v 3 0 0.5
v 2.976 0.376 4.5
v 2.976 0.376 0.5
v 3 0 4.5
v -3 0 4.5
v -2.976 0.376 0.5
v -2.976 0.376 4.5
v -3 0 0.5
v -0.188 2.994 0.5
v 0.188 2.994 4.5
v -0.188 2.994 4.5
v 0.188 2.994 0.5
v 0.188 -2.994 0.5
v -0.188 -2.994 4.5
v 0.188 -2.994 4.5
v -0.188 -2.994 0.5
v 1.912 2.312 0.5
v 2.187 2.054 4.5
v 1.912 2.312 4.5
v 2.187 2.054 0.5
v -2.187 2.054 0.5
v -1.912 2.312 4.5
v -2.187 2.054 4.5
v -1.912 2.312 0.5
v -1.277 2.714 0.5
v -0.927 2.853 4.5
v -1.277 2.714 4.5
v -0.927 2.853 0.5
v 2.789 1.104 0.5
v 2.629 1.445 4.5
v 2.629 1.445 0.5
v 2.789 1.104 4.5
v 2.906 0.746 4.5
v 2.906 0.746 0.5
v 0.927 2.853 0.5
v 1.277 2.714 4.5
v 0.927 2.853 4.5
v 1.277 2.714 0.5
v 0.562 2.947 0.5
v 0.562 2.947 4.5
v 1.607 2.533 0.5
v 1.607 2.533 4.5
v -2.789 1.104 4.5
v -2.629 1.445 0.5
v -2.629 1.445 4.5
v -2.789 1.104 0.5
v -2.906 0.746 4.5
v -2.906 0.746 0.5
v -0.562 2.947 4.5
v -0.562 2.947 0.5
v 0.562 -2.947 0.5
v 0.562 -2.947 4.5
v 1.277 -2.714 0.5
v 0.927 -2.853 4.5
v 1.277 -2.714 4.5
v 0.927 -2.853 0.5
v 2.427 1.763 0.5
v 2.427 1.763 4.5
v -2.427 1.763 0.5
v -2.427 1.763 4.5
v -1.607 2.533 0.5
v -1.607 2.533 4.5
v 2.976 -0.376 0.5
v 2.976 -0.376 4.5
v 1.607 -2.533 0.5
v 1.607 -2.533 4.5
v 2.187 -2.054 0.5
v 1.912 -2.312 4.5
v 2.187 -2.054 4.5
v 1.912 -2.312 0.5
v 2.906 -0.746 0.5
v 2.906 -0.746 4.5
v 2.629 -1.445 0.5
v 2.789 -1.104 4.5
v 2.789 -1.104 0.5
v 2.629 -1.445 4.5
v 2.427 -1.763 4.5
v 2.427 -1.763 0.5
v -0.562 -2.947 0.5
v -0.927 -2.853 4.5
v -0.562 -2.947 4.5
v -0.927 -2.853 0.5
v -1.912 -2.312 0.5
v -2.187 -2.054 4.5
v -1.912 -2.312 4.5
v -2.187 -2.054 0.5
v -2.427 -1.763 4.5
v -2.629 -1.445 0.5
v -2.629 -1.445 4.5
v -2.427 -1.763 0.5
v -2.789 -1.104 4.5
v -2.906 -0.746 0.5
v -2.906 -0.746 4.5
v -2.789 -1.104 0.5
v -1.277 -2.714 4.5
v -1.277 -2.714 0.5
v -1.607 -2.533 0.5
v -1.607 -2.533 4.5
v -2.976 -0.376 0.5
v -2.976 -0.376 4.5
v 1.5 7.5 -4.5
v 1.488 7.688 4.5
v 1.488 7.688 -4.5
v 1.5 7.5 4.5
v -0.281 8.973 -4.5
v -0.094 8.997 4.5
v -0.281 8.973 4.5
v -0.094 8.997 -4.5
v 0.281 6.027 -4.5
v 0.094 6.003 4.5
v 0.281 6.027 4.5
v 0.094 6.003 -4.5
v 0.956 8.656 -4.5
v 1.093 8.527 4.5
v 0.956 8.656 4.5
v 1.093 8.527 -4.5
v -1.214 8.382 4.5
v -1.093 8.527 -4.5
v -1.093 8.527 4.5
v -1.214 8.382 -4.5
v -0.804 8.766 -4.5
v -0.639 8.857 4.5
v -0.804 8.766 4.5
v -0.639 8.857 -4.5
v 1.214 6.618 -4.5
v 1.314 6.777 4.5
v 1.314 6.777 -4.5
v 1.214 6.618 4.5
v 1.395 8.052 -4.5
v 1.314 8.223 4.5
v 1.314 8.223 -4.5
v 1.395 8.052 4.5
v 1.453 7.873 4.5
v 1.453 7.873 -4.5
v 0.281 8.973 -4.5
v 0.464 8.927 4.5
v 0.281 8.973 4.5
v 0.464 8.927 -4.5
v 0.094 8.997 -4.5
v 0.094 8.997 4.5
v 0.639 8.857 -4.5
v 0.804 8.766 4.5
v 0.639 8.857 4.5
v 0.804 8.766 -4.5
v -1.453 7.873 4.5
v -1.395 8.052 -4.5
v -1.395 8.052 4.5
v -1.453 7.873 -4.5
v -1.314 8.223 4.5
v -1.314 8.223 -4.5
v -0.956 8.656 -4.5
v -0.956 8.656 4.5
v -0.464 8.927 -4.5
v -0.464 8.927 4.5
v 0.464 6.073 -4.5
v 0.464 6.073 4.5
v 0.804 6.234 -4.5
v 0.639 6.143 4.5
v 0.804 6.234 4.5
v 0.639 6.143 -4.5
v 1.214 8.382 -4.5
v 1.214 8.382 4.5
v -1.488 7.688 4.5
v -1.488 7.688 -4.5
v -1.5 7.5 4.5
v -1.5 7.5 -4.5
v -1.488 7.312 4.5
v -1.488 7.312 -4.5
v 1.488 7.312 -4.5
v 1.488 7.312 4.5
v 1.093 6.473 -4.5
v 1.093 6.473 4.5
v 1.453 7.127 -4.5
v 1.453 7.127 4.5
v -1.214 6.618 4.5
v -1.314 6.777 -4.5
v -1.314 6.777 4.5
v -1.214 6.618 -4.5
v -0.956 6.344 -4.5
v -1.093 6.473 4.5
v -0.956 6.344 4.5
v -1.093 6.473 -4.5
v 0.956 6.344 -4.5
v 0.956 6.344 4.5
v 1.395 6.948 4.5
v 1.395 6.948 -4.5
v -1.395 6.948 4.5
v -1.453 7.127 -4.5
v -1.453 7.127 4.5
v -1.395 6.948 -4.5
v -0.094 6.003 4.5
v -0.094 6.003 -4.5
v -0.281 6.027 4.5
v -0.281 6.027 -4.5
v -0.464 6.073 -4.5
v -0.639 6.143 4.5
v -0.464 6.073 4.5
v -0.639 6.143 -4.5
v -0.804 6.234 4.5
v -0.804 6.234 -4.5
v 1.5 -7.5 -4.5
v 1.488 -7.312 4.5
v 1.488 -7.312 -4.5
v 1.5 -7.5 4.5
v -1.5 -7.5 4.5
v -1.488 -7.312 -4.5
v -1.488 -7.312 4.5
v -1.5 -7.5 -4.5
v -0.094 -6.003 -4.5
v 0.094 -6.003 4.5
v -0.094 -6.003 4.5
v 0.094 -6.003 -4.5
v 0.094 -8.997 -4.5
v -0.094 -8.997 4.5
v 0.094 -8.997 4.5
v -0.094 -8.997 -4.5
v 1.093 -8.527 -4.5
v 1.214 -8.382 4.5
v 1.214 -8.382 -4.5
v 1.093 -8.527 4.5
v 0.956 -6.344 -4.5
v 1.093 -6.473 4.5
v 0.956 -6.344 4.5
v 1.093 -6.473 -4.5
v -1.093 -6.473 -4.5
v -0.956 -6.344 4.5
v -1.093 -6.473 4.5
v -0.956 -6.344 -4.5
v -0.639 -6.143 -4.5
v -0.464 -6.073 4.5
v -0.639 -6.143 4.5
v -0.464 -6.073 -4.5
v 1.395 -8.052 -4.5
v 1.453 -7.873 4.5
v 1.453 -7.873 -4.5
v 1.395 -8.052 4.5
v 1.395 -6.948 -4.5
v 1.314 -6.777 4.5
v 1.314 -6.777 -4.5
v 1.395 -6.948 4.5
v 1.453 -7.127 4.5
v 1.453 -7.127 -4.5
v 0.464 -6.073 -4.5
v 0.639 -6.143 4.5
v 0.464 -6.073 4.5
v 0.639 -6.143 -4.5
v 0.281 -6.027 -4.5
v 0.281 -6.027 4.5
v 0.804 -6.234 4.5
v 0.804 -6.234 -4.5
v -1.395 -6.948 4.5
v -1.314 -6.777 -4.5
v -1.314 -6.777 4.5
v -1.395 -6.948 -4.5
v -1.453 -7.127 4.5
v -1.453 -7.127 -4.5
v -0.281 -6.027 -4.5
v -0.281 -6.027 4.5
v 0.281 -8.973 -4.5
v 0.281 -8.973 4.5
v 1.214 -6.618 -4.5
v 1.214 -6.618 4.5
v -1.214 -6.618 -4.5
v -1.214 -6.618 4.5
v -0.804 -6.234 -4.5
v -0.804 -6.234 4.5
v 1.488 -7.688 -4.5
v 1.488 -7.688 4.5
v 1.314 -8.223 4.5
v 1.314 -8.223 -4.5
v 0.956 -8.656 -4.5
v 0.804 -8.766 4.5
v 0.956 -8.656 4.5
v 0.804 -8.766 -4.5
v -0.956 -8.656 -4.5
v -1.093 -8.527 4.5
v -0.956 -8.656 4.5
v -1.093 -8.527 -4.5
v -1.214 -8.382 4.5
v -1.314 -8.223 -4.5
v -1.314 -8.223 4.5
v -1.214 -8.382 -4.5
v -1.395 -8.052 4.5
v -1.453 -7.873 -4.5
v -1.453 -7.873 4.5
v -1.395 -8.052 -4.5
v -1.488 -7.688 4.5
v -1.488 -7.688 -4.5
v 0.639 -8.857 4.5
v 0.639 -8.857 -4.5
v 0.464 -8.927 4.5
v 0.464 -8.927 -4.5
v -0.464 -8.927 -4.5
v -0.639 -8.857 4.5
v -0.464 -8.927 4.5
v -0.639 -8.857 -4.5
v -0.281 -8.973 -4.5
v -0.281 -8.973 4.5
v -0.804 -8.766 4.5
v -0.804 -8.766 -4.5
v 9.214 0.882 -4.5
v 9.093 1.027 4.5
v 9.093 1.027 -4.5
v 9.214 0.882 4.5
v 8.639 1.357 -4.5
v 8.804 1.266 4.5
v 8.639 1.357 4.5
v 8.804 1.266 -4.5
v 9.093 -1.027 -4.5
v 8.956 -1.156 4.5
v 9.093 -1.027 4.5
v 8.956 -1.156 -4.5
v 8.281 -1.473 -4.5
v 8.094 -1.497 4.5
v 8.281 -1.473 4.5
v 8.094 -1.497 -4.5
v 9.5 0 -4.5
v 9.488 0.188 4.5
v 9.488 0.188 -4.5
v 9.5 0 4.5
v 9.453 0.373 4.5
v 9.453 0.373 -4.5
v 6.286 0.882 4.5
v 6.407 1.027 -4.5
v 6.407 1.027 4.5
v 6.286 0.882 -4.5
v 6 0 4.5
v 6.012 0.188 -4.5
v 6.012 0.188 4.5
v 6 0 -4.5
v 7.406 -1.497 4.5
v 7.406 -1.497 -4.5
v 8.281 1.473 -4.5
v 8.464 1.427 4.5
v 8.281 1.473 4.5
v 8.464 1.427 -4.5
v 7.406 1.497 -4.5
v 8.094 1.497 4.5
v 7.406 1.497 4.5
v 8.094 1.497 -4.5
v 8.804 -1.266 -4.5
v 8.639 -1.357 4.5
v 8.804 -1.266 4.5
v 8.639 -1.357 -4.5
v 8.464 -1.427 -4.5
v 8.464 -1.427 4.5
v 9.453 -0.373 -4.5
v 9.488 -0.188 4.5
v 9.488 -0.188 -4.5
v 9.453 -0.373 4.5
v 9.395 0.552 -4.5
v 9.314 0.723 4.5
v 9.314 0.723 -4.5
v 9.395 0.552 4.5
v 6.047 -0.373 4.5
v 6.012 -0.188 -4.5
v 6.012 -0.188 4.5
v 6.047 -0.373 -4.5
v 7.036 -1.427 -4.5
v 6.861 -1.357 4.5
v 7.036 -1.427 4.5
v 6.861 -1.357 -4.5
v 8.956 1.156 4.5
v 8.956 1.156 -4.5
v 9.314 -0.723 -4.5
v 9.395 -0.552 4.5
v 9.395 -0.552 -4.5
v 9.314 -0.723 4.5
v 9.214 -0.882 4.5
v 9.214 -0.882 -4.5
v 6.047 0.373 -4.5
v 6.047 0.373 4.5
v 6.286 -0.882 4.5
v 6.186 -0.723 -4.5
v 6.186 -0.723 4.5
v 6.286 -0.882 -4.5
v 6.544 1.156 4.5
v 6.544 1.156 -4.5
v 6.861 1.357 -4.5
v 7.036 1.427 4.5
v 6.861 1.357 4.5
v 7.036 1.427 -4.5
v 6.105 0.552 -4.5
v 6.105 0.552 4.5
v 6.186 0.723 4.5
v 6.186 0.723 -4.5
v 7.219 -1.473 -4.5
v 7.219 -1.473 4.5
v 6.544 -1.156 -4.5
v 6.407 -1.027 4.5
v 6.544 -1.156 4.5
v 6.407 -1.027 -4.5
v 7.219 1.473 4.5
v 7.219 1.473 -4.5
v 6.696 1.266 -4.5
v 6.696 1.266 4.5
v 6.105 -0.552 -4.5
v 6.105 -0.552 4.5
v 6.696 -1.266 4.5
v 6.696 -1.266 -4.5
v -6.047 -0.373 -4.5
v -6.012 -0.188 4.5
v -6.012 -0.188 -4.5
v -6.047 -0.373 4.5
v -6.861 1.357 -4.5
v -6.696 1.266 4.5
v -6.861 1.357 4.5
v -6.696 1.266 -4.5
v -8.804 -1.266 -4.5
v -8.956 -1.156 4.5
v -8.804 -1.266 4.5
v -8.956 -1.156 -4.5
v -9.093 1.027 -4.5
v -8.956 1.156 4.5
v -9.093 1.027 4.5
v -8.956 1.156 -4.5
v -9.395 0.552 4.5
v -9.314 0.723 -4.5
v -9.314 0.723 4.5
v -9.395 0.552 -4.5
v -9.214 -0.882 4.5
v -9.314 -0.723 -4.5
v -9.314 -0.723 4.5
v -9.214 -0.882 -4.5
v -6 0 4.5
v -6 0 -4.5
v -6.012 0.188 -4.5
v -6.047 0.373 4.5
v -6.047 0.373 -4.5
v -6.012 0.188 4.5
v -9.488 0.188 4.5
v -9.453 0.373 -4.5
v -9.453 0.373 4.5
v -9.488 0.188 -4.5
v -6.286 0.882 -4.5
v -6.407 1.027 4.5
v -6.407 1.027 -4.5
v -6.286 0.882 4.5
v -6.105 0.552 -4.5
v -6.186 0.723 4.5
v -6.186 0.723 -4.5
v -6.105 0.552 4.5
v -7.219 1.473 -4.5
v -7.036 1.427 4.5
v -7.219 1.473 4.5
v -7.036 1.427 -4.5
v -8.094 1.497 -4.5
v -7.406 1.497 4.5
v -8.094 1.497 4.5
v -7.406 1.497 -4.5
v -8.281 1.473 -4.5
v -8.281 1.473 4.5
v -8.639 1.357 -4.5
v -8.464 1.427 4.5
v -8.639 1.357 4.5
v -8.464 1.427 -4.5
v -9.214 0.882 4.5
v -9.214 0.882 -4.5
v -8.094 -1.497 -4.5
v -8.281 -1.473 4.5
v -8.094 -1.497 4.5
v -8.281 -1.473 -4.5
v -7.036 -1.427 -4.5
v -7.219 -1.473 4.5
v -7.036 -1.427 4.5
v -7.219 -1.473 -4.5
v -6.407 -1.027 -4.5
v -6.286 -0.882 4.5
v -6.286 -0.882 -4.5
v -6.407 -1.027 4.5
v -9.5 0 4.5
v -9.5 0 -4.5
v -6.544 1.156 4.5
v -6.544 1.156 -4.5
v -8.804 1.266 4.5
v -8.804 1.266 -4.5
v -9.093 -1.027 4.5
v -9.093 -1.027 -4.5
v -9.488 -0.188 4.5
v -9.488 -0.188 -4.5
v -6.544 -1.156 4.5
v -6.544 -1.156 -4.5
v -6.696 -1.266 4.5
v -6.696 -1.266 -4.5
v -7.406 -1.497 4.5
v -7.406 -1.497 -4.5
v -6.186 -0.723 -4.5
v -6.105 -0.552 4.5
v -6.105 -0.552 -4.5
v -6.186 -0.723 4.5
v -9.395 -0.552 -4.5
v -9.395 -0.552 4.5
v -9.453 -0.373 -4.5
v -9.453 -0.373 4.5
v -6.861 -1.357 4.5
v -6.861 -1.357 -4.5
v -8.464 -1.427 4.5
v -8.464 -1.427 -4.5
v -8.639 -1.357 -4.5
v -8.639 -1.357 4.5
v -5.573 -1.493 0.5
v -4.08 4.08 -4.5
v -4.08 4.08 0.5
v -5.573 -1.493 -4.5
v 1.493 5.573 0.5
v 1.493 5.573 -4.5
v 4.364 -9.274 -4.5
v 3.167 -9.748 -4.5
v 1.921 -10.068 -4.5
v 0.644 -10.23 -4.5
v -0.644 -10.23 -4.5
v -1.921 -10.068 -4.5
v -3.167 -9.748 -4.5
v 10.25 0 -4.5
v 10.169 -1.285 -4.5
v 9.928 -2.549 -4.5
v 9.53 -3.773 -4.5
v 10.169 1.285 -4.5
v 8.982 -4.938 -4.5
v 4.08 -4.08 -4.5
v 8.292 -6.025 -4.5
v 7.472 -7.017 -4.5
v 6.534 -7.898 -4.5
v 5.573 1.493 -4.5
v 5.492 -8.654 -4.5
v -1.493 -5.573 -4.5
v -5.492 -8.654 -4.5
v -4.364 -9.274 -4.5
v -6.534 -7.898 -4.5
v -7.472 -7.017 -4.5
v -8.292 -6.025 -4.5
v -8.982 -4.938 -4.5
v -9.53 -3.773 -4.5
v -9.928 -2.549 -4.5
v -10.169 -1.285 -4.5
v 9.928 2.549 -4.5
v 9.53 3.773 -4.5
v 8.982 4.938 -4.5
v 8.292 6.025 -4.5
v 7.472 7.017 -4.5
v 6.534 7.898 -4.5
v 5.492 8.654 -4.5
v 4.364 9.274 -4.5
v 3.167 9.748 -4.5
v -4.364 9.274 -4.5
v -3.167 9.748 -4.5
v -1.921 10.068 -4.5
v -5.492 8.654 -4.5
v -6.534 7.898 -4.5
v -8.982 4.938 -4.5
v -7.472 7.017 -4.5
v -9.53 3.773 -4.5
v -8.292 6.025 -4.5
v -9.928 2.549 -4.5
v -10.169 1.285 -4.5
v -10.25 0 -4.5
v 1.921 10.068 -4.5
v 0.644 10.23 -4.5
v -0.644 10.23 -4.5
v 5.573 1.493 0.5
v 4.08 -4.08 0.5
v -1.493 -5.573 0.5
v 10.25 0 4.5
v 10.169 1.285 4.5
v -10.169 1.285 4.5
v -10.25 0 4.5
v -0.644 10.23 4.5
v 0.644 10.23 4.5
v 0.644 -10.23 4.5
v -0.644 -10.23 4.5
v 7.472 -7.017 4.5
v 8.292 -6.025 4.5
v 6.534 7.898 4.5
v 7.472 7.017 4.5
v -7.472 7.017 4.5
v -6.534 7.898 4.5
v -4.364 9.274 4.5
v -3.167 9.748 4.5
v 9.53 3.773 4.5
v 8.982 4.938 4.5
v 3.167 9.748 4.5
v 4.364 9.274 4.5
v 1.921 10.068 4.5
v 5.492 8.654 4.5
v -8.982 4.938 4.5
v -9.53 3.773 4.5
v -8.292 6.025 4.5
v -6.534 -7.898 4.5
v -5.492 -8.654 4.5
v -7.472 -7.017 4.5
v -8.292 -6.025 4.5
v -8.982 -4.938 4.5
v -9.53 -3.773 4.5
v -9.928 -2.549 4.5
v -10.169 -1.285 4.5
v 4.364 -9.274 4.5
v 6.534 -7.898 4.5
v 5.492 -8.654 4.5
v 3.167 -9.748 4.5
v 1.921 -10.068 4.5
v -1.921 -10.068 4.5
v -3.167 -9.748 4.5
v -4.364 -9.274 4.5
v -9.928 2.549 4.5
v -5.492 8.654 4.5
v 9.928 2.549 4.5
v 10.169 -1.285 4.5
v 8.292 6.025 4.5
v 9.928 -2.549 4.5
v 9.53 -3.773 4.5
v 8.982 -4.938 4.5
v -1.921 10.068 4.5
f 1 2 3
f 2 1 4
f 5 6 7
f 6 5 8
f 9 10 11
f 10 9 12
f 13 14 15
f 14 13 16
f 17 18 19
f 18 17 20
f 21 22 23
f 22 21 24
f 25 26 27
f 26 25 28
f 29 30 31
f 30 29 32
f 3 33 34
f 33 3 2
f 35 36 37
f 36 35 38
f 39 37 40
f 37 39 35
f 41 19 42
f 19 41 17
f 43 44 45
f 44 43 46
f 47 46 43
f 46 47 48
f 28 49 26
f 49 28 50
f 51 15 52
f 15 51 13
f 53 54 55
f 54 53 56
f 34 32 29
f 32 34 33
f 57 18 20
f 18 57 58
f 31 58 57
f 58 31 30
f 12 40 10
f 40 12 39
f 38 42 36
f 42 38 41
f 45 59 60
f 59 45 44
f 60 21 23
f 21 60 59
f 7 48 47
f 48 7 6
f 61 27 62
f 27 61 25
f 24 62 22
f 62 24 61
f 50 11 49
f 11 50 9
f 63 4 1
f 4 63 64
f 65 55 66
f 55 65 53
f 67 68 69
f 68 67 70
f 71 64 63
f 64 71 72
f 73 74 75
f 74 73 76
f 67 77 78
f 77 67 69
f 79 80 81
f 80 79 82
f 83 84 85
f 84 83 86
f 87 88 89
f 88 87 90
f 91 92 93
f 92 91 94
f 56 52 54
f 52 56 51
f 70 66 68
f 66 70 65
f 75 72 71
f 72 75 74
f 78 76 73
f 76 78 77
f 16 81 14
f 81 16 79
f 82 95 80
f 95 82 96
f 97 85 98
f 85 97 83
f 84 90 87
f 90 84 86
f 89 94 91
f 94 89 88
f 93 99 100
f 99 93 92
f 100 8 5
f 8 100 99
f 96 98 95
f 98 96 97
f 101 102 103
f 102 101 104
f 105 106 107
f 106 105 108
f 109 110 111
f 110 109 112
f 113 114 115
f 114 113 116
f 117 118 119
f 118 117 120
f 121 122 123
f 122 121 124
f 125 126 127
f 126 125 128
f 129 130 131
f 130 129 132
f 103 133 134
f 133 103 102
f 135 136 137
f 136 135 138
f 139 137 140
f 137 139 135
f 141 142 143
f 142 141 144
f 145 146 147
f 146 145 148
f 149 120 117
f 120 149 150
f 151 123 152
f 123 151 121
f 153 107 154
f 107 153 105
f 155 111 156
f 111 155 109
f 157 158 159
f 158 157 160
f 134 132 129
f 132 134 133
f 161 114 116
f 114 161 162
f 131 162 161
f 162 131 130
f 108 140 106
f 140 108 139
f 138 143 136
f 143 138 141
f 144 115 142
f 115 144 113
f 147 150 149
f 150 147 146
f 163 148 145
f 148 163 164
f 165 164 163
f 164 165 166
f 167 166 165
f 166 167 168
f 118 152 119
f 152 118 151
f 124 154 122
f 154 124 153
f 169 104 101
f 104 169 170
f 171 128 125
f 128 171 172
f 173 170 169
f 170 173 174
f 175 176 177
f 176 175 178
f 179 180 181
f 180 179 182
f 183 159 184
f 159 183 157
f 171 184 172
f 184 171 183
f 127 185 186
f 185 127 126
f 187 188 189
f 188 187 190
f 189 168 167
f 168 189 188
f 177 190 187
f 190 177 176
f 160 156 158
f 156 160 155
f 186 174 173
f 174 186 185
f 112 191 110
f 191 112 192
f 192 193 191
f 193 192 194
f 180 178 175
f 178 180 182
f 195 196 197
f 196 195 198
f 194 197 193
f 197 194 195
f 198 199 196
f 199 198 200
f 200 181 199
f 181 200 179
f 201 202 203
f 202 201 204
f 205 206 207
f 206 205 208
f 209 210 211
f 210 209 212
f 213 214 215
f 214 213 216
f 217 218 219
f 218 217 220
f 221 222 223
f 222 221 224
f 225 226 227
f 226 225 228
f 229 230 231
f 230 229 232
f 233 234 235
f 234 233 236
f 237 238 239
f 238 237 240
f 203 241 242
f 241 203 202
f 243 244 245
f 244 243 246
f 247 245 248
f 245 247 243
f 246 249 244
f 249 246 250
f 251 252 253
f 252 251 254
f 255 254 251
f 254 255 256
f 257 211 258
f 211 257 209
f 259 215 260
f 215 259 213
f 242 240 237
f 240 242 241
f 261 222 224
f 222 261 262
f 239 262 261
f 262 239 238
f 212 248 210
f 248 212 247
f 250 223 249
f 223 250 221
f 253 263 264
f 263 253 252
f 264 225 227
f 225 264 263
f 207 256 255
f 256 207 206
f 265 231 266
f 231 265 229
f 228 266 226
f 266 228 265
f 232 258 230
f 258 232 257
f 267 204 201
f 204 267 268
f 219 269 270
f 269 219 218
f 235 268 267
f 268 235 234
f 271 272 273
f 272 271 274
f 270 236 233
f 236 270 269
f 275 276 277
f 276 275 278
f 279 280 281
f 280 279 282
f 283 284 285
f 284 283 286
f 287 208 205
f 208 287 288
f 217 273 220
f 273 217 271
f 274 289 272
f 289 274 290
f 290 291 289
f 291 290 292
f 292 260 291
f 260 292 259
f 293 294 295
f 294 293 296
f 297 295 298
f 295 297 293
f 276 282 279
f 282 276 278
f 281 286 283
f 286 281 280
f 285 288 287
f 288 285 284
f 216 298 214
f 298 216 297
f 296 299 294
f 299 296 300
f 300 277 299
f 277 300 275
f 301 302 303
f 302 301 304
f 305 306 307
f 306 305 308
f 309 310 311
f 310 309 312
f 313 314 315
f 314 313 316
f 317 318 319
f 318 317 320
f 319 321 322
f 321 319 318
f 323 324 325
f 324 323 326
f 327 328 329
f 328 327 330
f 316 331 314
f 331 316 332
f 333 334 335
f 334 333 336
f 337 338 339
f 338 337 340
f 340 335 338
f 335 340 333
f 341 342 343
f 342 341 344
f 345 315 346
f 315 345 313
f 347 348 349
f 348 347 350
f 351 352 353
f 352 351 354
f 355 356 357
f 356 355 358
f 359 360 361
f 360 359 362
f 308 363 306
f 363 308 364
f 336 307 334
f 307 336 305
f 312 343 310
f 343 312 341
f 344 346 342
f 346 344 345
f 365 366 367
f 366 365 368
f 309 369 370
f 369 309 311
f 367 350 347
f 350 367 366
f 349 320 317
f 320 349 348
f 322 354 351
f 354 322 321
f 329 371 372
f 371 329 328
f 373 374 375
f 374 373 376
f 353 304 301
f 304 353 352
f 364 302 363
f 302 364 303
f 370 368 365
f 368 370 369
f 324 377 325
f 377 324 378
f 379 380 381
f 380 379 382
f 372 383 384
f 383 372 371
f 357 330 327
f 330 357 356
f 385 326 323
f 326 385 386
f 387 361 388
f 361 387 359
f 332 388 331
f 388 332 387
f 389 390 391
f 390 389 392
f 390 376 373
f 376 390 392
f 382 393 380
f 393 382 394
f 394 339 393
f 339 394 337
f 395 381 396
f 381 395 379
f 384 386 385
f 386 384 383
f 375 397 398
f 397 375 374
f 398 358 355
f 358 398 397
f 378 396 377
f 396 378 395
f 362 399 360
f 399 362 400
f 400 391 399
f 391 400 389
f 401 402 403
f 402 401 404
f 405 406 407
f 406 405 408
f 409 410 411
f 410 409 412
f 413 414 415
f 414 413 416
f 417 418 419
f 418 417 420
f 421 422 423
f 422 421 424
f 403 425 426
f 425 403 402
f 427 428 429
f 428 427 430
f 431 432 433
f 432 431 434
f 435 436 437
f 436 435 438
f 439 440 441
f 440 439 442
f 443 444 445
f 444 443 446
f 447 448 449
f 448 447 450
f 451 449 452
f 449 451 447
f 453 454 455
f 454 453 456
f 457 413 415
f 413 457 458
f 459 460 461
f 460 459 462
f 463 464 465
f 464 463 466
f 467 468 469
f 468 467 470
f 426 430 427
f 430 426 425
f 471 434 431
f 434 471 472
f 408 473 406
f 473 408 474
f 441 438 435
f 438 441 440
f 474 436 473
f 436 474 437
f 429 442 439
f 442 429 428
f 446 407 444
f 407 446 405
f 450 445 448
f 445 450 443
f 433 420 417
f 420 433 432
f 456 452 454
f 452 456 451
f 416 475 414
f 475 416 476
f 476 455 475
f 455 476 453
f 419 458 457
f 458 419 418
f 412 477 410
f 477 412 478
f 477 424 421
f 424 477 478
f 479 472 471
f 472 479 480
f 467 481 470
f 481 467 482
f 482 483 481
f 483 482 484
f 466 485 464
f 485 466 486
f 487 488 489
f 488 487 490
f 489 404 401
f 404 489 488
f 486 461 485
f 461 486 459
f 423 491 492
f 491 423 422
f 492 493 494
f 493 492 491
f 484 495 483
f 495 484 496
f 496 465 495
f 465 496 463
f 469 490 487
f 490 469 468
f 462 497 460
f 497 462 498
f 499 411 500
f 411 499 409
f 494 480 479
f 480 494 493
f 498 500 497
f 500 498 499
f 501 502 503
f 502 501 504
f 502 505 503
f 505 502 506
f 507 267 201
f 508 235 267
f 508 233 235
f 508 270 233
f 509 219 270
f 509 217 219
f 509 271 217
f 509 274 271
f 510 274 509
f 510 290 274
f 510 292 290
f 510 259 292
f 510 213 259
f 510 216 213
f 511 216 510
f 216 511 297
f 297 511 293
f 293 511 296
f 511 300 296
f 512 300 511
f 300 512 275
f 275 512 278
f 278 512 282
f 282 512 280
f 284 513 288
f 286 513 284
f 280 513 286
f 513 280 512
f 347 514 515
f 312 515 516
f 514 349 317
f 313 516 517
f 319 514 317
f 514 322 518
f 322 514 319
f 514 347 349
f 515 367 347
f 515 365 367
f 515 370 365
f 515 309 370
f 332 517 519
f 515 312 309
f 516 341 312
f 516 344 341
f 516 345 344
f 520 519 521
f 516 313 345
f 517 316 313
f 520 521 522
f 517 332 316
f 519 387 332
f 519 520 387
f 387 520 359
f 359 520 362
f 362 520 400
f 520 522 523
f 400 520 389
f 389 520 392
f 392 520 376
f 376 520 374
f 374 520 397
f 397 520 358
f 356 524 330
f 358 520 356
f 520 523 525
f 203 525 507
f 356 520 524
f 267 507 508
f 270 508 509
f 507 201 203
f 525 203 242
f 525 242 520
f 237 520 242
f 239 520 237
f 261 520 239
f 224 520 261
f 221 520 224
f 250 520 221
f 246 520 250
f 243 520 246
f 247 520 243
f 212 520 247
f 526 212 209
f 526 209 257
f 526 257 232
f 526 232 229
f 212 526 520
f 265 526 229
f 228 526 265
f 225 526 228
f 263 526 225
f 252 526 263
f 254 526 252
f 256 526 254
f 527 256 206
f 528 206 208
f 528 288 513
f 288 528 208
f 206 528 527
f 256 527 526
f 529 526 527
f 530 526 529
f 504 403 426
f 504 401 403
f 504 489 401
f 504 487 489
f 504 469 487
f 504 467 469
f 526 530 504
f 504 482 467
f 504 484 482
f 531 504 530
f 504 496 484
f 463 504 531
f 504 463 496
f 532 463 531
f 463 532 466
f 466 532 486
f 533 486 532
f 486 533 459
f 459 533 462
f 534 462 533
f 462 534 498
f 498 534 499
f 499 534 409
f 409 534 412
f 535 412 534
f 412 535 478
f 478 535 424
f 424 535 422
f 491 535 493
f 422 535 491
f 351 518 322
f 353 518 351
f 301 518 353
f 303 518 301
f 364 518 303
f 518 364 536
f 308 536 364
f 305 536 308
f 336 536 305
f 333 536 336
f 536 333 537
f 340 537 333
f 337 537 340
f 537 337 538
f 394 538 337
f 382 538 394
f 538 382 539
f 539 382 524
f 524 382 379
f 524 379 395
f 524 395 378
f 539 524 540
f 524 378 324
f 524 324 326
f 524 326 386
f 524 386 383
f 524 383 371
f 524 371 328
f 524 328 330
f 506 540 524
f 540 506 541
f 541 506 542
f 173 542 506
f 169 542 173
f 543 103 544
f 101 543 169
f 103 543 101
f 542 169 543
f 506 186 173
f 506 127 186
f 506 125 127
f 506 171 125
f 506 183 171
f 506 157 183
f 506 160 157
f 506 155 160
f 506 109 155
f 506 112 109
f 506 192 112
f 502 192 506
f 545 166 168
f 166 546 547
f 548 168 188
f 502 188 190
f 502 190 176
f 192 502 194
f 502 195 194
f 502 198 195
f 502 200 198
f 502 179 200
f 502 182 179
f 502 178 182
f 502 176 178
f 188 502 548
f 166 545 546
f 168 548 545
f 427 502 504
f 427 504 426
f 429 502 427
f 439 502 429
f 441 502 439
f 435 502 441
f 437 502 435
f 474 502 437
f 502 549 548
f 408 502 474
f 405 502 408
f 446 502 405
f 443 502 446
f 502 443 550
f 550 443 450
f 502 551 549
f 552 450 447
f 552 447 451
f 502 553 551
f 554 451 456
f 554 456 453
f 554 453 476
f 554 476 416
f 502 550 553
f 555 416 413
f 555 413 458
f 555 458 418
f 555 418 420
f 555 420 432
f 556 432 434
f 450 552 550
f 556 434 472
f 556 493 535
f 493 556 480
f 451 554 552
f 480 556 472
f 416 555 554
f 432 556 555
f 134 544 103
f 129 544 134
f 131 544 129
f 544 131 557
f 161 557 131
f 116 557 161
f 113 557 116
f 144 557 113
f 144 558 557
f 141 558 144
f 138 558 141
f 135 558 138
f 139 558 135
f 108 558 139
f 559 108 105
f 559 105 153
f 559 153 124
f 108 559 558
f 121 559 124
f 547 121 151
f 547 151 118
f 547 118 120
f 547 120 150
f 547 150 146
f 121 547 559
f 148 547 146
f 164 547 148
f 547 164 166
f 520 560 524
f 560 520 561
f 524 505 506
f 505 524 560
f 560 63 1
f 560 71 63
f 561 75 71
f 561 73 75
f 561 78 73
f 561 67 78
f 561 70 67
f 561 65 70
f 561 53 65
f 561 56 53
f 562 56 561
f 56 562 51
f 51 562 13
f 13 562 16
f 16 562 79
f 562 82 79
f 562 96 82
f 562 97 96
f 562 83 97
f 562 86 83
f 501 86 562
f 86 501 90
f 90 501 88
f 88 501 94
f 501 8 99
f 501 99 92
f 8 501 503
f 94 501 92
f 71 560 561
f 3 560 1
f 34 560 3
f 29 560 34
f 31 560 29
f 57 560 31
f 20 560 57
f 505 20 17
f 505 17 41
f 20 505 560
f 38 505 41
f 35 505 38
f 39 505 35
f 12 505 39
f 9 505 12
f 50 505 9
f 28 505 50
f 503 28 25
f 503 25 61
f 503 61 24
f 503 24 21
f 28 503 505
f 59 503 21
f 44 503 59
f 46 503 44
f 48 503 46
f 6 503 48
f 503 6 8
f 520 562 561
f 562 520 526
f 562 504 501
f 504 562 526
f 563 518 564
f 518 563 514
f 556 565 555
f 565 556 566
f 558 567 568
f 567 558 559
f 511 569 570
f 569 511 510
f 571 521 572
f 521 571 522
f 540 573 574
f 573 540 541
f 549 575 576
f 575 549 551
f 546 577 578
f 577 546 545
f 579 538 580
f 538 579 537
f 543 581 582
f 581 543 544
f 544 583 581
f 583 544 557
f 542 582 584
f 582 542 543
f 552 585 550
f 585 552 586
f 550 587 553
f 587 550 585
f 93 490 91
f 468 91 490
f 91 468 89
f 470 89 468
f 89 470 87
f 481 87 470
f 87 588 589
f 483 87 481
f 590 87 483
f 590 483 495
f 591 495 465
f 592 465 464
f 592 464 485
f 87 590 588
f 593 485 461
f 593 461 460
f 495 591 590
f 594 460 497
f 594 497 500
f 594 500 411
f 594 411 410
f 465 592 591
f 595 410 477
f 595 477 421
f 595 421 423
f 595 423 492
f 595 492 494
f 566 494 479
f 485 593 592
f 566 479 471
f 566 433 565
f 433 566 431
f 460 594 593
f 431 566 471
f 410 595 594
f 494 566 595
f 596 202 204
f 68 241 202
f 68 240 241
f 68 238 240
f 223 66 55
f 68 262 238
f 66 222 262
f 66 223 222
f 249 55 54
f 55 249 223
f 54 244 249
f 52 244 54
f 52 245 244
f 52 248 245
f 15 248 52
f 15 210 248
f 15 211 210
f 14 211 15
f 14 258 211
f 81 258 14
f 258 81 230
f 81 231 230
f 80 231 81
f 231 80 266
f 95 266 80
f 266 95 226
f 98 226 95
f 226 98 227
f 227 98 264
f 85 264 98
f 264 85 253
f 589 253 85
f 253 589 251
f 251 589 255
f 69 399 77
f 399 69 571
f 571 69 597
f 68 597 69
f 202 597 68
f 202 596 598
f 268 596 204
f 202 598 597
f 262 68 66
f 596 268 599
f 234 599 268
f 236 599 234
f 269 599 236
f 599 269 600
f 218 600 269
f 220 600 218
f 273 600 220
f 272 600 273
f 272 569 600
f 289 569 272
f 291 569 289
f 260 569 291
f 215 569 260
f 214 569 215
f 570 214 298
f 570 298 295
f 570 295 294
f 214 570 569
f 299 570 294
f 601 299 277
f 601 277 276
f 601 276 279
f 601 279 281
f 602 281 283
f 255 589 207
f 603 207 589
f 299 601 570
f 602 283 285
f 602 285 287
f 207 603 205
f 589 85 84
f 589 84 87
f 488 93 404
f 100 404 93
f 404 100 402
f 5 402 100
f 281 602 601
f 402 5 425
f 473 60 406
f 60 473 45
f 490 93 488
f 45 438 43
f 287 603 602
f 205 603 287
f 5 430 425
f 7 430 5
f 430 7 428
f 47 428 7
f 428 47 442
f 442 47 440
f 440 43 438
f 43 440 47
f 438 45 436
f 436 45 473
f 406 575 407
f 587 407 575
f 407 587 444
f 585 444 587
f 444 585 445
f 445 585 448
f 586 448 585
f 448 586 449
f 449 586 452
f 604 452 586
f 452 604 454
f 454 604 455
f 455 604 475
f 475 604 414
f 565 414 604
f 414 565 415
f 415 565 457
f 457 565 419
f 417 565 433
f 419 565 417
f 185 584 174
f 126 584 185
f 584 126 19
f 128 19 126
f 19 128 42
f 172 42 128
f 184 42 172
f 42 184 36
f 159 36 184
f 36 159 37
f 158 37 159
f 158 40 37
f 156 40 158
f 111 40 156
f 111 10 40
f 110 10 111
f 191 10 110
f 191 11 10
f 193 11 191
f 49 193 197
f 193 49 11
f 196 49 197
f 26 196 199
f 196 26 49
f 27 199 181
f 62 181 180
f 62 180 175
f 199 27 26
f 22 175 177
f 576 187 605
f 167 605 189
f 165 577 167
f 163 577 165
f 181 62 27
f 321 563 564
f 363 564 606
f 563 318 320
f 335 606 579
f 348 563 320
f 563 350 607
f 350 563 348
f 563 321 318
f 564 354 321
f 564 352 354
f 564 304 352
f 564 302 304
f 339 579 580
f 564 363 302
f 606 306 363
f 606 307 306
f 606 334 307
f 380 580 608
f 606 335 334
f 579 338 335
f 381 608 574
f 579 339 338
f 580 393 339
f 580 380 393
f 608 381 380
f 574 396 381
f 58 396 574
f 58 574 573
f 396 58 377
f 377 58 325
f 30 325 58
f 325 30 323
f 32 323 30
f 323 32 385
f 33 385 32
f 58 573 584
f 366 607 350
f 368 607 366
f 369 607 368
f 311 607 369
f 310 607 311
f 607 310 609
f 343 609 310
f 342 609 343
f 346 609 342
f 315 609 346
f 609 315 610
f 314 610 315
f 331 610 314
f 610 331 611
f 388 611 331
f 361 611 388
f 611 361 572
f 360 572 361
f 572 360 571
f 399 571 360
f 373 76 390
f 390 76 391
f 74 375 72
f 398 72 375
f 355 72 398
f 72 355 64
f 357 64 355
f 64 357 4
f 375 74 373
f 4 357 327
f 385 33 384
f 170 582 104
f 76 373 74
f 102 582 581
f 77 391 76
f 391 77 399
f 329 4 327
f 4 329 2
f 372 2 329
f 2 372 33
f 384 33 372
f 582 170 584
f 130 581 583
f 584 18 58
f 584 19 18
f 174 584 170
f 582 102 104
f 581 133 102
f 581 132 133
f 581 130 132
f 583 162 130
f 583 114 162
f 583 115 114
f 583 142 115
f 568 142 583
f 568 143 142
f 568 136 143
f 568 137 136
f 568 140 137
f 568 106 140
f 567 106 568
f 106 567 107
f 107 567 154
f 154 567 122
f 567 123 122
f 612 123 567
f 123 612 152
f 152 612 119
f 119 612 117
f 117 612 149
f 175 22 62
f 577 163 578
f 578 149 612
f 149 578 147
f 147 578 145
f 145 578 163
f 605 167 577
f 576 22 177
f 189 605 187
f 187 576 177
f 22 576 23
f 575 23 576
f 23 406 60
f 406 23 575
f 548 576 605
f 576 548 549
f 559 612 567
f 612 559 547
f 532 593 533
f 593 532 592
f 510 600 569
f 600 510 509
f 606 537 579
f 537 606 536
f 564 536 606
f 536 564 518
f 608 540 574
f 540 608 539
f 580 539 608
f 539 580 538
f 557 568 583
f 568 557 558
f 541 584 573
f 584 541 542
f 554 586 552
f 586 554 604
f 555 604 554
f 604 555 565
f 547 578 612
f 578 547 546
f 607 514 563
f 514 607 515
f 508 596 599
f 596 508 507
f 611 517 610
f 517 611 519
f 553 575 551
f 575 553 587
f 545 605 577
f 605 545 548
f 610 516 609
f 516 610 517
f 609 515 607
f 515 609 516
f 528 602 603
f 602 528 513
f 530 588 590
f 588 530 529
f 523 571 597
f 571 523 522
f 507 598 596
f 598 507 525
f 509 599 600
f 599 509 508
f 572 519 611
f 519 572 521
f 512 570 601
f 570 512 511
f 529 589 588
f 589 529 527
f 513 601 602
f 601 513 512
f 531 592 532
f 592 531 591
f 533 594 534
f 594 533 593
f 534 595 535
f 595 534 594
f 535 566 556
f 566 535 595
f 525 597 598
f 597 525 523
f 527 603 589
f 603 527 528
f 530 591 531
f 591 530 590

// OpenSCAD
$fn = 50;


difference() {
	union() {
		translate(v = [0, 0, -4.5000000000]) {
			rotate(a = [0, 0, 0]) {
				cylinder(h = 9, r = 10.2500000000);
			}
		}
	}
	union() {
		translate(v = [0, 0, -125.0000000000]) {
			rotate(a = [0, 0, 0]) {
				cylinder(h = 250, r = 3.0000000000);
			}
		}
		translate(v = [0, 7.5000000000, -125.0000000000]) {
			rotate(a = [0, 0, 0]) {
				cylinder(h = 250, r = 1.5000000000);
			}
		}
		translate(v = [0, -7.5000000000, -125.0000000000]) {
			rotate(a = [0, 0, 0]) {
				cylinder(h = 250, r = 1.5000000000);
			}
		}
		translate(v = [7.7500000000, 0, -125.0000000000]) {
			rotate(a = [0, 0, 0]) {
				hull() {
					translate(v = [0.2500000000, 0, 0]) {
						rotate(a = [0, 0, 0]) {
							translate(v = [0, 0, 0]) {
								rotate(a = [0, 0, 0]) {
									cylinder(h = 250, r = 1.5000000000);
								}
							}
						}
					}
					translate(v = [-0.2500000000, 0, 0]) {
						rotate(a = [0, 0, 0]) {
							translate(v = [0, 0, 0]) {
								rotate(a = [0, 0, 0]) {
									cylinder(h = 250, r = 1.5000000000);
								}
							}
						}
					}
				}
			}
		}
		translate(v = [-7.7500000000, 0, -125.0000000000]) {
			rotate(a = [0, 0, 0]) {
				hull() {
					translate(v = [0.2500000000, 0, 0]) {
						rotate(a = [0, 0, 0]) {
							translate(v = [0, 0, 0]) {
								rotate(a = [0, 0, 0]) {
									cylinder(h = 250, r = 1.5000000000);
								}
							}
						}
					}
					translate(v = [-0.2500000000, 0, 0]) {
						rotate(a = [0, 0, 0]) {
							translate(v = [0, 0, 0]) {
								rotate(a = [0, 0, 0]) {
									cylinder(h = 250, r = 1.5000000000);
								}
							}
						}
					}
				}
			}
		}
		translate(v = [0, 0, -4.5000000000]) {
			rotate(a = [0, 0, 15.0000000000]) {
				translate(v = [0, 0, 0]) {
					rotate(a = [0, 0, 0]) {
						linear_extrude(height = 5) {
							polygon(points = [[5.7700000000, 0.0000000000], [2.8850000000, 4.9969665798], [-2.8850000000, 4.9969665798], [-5.7700000000, 0.0000000000], [-2.8850000000, -4.9969665798], [2.8850000000, -4.9969665798]]);
						}
					}
				}
			}
		}
	}
}
